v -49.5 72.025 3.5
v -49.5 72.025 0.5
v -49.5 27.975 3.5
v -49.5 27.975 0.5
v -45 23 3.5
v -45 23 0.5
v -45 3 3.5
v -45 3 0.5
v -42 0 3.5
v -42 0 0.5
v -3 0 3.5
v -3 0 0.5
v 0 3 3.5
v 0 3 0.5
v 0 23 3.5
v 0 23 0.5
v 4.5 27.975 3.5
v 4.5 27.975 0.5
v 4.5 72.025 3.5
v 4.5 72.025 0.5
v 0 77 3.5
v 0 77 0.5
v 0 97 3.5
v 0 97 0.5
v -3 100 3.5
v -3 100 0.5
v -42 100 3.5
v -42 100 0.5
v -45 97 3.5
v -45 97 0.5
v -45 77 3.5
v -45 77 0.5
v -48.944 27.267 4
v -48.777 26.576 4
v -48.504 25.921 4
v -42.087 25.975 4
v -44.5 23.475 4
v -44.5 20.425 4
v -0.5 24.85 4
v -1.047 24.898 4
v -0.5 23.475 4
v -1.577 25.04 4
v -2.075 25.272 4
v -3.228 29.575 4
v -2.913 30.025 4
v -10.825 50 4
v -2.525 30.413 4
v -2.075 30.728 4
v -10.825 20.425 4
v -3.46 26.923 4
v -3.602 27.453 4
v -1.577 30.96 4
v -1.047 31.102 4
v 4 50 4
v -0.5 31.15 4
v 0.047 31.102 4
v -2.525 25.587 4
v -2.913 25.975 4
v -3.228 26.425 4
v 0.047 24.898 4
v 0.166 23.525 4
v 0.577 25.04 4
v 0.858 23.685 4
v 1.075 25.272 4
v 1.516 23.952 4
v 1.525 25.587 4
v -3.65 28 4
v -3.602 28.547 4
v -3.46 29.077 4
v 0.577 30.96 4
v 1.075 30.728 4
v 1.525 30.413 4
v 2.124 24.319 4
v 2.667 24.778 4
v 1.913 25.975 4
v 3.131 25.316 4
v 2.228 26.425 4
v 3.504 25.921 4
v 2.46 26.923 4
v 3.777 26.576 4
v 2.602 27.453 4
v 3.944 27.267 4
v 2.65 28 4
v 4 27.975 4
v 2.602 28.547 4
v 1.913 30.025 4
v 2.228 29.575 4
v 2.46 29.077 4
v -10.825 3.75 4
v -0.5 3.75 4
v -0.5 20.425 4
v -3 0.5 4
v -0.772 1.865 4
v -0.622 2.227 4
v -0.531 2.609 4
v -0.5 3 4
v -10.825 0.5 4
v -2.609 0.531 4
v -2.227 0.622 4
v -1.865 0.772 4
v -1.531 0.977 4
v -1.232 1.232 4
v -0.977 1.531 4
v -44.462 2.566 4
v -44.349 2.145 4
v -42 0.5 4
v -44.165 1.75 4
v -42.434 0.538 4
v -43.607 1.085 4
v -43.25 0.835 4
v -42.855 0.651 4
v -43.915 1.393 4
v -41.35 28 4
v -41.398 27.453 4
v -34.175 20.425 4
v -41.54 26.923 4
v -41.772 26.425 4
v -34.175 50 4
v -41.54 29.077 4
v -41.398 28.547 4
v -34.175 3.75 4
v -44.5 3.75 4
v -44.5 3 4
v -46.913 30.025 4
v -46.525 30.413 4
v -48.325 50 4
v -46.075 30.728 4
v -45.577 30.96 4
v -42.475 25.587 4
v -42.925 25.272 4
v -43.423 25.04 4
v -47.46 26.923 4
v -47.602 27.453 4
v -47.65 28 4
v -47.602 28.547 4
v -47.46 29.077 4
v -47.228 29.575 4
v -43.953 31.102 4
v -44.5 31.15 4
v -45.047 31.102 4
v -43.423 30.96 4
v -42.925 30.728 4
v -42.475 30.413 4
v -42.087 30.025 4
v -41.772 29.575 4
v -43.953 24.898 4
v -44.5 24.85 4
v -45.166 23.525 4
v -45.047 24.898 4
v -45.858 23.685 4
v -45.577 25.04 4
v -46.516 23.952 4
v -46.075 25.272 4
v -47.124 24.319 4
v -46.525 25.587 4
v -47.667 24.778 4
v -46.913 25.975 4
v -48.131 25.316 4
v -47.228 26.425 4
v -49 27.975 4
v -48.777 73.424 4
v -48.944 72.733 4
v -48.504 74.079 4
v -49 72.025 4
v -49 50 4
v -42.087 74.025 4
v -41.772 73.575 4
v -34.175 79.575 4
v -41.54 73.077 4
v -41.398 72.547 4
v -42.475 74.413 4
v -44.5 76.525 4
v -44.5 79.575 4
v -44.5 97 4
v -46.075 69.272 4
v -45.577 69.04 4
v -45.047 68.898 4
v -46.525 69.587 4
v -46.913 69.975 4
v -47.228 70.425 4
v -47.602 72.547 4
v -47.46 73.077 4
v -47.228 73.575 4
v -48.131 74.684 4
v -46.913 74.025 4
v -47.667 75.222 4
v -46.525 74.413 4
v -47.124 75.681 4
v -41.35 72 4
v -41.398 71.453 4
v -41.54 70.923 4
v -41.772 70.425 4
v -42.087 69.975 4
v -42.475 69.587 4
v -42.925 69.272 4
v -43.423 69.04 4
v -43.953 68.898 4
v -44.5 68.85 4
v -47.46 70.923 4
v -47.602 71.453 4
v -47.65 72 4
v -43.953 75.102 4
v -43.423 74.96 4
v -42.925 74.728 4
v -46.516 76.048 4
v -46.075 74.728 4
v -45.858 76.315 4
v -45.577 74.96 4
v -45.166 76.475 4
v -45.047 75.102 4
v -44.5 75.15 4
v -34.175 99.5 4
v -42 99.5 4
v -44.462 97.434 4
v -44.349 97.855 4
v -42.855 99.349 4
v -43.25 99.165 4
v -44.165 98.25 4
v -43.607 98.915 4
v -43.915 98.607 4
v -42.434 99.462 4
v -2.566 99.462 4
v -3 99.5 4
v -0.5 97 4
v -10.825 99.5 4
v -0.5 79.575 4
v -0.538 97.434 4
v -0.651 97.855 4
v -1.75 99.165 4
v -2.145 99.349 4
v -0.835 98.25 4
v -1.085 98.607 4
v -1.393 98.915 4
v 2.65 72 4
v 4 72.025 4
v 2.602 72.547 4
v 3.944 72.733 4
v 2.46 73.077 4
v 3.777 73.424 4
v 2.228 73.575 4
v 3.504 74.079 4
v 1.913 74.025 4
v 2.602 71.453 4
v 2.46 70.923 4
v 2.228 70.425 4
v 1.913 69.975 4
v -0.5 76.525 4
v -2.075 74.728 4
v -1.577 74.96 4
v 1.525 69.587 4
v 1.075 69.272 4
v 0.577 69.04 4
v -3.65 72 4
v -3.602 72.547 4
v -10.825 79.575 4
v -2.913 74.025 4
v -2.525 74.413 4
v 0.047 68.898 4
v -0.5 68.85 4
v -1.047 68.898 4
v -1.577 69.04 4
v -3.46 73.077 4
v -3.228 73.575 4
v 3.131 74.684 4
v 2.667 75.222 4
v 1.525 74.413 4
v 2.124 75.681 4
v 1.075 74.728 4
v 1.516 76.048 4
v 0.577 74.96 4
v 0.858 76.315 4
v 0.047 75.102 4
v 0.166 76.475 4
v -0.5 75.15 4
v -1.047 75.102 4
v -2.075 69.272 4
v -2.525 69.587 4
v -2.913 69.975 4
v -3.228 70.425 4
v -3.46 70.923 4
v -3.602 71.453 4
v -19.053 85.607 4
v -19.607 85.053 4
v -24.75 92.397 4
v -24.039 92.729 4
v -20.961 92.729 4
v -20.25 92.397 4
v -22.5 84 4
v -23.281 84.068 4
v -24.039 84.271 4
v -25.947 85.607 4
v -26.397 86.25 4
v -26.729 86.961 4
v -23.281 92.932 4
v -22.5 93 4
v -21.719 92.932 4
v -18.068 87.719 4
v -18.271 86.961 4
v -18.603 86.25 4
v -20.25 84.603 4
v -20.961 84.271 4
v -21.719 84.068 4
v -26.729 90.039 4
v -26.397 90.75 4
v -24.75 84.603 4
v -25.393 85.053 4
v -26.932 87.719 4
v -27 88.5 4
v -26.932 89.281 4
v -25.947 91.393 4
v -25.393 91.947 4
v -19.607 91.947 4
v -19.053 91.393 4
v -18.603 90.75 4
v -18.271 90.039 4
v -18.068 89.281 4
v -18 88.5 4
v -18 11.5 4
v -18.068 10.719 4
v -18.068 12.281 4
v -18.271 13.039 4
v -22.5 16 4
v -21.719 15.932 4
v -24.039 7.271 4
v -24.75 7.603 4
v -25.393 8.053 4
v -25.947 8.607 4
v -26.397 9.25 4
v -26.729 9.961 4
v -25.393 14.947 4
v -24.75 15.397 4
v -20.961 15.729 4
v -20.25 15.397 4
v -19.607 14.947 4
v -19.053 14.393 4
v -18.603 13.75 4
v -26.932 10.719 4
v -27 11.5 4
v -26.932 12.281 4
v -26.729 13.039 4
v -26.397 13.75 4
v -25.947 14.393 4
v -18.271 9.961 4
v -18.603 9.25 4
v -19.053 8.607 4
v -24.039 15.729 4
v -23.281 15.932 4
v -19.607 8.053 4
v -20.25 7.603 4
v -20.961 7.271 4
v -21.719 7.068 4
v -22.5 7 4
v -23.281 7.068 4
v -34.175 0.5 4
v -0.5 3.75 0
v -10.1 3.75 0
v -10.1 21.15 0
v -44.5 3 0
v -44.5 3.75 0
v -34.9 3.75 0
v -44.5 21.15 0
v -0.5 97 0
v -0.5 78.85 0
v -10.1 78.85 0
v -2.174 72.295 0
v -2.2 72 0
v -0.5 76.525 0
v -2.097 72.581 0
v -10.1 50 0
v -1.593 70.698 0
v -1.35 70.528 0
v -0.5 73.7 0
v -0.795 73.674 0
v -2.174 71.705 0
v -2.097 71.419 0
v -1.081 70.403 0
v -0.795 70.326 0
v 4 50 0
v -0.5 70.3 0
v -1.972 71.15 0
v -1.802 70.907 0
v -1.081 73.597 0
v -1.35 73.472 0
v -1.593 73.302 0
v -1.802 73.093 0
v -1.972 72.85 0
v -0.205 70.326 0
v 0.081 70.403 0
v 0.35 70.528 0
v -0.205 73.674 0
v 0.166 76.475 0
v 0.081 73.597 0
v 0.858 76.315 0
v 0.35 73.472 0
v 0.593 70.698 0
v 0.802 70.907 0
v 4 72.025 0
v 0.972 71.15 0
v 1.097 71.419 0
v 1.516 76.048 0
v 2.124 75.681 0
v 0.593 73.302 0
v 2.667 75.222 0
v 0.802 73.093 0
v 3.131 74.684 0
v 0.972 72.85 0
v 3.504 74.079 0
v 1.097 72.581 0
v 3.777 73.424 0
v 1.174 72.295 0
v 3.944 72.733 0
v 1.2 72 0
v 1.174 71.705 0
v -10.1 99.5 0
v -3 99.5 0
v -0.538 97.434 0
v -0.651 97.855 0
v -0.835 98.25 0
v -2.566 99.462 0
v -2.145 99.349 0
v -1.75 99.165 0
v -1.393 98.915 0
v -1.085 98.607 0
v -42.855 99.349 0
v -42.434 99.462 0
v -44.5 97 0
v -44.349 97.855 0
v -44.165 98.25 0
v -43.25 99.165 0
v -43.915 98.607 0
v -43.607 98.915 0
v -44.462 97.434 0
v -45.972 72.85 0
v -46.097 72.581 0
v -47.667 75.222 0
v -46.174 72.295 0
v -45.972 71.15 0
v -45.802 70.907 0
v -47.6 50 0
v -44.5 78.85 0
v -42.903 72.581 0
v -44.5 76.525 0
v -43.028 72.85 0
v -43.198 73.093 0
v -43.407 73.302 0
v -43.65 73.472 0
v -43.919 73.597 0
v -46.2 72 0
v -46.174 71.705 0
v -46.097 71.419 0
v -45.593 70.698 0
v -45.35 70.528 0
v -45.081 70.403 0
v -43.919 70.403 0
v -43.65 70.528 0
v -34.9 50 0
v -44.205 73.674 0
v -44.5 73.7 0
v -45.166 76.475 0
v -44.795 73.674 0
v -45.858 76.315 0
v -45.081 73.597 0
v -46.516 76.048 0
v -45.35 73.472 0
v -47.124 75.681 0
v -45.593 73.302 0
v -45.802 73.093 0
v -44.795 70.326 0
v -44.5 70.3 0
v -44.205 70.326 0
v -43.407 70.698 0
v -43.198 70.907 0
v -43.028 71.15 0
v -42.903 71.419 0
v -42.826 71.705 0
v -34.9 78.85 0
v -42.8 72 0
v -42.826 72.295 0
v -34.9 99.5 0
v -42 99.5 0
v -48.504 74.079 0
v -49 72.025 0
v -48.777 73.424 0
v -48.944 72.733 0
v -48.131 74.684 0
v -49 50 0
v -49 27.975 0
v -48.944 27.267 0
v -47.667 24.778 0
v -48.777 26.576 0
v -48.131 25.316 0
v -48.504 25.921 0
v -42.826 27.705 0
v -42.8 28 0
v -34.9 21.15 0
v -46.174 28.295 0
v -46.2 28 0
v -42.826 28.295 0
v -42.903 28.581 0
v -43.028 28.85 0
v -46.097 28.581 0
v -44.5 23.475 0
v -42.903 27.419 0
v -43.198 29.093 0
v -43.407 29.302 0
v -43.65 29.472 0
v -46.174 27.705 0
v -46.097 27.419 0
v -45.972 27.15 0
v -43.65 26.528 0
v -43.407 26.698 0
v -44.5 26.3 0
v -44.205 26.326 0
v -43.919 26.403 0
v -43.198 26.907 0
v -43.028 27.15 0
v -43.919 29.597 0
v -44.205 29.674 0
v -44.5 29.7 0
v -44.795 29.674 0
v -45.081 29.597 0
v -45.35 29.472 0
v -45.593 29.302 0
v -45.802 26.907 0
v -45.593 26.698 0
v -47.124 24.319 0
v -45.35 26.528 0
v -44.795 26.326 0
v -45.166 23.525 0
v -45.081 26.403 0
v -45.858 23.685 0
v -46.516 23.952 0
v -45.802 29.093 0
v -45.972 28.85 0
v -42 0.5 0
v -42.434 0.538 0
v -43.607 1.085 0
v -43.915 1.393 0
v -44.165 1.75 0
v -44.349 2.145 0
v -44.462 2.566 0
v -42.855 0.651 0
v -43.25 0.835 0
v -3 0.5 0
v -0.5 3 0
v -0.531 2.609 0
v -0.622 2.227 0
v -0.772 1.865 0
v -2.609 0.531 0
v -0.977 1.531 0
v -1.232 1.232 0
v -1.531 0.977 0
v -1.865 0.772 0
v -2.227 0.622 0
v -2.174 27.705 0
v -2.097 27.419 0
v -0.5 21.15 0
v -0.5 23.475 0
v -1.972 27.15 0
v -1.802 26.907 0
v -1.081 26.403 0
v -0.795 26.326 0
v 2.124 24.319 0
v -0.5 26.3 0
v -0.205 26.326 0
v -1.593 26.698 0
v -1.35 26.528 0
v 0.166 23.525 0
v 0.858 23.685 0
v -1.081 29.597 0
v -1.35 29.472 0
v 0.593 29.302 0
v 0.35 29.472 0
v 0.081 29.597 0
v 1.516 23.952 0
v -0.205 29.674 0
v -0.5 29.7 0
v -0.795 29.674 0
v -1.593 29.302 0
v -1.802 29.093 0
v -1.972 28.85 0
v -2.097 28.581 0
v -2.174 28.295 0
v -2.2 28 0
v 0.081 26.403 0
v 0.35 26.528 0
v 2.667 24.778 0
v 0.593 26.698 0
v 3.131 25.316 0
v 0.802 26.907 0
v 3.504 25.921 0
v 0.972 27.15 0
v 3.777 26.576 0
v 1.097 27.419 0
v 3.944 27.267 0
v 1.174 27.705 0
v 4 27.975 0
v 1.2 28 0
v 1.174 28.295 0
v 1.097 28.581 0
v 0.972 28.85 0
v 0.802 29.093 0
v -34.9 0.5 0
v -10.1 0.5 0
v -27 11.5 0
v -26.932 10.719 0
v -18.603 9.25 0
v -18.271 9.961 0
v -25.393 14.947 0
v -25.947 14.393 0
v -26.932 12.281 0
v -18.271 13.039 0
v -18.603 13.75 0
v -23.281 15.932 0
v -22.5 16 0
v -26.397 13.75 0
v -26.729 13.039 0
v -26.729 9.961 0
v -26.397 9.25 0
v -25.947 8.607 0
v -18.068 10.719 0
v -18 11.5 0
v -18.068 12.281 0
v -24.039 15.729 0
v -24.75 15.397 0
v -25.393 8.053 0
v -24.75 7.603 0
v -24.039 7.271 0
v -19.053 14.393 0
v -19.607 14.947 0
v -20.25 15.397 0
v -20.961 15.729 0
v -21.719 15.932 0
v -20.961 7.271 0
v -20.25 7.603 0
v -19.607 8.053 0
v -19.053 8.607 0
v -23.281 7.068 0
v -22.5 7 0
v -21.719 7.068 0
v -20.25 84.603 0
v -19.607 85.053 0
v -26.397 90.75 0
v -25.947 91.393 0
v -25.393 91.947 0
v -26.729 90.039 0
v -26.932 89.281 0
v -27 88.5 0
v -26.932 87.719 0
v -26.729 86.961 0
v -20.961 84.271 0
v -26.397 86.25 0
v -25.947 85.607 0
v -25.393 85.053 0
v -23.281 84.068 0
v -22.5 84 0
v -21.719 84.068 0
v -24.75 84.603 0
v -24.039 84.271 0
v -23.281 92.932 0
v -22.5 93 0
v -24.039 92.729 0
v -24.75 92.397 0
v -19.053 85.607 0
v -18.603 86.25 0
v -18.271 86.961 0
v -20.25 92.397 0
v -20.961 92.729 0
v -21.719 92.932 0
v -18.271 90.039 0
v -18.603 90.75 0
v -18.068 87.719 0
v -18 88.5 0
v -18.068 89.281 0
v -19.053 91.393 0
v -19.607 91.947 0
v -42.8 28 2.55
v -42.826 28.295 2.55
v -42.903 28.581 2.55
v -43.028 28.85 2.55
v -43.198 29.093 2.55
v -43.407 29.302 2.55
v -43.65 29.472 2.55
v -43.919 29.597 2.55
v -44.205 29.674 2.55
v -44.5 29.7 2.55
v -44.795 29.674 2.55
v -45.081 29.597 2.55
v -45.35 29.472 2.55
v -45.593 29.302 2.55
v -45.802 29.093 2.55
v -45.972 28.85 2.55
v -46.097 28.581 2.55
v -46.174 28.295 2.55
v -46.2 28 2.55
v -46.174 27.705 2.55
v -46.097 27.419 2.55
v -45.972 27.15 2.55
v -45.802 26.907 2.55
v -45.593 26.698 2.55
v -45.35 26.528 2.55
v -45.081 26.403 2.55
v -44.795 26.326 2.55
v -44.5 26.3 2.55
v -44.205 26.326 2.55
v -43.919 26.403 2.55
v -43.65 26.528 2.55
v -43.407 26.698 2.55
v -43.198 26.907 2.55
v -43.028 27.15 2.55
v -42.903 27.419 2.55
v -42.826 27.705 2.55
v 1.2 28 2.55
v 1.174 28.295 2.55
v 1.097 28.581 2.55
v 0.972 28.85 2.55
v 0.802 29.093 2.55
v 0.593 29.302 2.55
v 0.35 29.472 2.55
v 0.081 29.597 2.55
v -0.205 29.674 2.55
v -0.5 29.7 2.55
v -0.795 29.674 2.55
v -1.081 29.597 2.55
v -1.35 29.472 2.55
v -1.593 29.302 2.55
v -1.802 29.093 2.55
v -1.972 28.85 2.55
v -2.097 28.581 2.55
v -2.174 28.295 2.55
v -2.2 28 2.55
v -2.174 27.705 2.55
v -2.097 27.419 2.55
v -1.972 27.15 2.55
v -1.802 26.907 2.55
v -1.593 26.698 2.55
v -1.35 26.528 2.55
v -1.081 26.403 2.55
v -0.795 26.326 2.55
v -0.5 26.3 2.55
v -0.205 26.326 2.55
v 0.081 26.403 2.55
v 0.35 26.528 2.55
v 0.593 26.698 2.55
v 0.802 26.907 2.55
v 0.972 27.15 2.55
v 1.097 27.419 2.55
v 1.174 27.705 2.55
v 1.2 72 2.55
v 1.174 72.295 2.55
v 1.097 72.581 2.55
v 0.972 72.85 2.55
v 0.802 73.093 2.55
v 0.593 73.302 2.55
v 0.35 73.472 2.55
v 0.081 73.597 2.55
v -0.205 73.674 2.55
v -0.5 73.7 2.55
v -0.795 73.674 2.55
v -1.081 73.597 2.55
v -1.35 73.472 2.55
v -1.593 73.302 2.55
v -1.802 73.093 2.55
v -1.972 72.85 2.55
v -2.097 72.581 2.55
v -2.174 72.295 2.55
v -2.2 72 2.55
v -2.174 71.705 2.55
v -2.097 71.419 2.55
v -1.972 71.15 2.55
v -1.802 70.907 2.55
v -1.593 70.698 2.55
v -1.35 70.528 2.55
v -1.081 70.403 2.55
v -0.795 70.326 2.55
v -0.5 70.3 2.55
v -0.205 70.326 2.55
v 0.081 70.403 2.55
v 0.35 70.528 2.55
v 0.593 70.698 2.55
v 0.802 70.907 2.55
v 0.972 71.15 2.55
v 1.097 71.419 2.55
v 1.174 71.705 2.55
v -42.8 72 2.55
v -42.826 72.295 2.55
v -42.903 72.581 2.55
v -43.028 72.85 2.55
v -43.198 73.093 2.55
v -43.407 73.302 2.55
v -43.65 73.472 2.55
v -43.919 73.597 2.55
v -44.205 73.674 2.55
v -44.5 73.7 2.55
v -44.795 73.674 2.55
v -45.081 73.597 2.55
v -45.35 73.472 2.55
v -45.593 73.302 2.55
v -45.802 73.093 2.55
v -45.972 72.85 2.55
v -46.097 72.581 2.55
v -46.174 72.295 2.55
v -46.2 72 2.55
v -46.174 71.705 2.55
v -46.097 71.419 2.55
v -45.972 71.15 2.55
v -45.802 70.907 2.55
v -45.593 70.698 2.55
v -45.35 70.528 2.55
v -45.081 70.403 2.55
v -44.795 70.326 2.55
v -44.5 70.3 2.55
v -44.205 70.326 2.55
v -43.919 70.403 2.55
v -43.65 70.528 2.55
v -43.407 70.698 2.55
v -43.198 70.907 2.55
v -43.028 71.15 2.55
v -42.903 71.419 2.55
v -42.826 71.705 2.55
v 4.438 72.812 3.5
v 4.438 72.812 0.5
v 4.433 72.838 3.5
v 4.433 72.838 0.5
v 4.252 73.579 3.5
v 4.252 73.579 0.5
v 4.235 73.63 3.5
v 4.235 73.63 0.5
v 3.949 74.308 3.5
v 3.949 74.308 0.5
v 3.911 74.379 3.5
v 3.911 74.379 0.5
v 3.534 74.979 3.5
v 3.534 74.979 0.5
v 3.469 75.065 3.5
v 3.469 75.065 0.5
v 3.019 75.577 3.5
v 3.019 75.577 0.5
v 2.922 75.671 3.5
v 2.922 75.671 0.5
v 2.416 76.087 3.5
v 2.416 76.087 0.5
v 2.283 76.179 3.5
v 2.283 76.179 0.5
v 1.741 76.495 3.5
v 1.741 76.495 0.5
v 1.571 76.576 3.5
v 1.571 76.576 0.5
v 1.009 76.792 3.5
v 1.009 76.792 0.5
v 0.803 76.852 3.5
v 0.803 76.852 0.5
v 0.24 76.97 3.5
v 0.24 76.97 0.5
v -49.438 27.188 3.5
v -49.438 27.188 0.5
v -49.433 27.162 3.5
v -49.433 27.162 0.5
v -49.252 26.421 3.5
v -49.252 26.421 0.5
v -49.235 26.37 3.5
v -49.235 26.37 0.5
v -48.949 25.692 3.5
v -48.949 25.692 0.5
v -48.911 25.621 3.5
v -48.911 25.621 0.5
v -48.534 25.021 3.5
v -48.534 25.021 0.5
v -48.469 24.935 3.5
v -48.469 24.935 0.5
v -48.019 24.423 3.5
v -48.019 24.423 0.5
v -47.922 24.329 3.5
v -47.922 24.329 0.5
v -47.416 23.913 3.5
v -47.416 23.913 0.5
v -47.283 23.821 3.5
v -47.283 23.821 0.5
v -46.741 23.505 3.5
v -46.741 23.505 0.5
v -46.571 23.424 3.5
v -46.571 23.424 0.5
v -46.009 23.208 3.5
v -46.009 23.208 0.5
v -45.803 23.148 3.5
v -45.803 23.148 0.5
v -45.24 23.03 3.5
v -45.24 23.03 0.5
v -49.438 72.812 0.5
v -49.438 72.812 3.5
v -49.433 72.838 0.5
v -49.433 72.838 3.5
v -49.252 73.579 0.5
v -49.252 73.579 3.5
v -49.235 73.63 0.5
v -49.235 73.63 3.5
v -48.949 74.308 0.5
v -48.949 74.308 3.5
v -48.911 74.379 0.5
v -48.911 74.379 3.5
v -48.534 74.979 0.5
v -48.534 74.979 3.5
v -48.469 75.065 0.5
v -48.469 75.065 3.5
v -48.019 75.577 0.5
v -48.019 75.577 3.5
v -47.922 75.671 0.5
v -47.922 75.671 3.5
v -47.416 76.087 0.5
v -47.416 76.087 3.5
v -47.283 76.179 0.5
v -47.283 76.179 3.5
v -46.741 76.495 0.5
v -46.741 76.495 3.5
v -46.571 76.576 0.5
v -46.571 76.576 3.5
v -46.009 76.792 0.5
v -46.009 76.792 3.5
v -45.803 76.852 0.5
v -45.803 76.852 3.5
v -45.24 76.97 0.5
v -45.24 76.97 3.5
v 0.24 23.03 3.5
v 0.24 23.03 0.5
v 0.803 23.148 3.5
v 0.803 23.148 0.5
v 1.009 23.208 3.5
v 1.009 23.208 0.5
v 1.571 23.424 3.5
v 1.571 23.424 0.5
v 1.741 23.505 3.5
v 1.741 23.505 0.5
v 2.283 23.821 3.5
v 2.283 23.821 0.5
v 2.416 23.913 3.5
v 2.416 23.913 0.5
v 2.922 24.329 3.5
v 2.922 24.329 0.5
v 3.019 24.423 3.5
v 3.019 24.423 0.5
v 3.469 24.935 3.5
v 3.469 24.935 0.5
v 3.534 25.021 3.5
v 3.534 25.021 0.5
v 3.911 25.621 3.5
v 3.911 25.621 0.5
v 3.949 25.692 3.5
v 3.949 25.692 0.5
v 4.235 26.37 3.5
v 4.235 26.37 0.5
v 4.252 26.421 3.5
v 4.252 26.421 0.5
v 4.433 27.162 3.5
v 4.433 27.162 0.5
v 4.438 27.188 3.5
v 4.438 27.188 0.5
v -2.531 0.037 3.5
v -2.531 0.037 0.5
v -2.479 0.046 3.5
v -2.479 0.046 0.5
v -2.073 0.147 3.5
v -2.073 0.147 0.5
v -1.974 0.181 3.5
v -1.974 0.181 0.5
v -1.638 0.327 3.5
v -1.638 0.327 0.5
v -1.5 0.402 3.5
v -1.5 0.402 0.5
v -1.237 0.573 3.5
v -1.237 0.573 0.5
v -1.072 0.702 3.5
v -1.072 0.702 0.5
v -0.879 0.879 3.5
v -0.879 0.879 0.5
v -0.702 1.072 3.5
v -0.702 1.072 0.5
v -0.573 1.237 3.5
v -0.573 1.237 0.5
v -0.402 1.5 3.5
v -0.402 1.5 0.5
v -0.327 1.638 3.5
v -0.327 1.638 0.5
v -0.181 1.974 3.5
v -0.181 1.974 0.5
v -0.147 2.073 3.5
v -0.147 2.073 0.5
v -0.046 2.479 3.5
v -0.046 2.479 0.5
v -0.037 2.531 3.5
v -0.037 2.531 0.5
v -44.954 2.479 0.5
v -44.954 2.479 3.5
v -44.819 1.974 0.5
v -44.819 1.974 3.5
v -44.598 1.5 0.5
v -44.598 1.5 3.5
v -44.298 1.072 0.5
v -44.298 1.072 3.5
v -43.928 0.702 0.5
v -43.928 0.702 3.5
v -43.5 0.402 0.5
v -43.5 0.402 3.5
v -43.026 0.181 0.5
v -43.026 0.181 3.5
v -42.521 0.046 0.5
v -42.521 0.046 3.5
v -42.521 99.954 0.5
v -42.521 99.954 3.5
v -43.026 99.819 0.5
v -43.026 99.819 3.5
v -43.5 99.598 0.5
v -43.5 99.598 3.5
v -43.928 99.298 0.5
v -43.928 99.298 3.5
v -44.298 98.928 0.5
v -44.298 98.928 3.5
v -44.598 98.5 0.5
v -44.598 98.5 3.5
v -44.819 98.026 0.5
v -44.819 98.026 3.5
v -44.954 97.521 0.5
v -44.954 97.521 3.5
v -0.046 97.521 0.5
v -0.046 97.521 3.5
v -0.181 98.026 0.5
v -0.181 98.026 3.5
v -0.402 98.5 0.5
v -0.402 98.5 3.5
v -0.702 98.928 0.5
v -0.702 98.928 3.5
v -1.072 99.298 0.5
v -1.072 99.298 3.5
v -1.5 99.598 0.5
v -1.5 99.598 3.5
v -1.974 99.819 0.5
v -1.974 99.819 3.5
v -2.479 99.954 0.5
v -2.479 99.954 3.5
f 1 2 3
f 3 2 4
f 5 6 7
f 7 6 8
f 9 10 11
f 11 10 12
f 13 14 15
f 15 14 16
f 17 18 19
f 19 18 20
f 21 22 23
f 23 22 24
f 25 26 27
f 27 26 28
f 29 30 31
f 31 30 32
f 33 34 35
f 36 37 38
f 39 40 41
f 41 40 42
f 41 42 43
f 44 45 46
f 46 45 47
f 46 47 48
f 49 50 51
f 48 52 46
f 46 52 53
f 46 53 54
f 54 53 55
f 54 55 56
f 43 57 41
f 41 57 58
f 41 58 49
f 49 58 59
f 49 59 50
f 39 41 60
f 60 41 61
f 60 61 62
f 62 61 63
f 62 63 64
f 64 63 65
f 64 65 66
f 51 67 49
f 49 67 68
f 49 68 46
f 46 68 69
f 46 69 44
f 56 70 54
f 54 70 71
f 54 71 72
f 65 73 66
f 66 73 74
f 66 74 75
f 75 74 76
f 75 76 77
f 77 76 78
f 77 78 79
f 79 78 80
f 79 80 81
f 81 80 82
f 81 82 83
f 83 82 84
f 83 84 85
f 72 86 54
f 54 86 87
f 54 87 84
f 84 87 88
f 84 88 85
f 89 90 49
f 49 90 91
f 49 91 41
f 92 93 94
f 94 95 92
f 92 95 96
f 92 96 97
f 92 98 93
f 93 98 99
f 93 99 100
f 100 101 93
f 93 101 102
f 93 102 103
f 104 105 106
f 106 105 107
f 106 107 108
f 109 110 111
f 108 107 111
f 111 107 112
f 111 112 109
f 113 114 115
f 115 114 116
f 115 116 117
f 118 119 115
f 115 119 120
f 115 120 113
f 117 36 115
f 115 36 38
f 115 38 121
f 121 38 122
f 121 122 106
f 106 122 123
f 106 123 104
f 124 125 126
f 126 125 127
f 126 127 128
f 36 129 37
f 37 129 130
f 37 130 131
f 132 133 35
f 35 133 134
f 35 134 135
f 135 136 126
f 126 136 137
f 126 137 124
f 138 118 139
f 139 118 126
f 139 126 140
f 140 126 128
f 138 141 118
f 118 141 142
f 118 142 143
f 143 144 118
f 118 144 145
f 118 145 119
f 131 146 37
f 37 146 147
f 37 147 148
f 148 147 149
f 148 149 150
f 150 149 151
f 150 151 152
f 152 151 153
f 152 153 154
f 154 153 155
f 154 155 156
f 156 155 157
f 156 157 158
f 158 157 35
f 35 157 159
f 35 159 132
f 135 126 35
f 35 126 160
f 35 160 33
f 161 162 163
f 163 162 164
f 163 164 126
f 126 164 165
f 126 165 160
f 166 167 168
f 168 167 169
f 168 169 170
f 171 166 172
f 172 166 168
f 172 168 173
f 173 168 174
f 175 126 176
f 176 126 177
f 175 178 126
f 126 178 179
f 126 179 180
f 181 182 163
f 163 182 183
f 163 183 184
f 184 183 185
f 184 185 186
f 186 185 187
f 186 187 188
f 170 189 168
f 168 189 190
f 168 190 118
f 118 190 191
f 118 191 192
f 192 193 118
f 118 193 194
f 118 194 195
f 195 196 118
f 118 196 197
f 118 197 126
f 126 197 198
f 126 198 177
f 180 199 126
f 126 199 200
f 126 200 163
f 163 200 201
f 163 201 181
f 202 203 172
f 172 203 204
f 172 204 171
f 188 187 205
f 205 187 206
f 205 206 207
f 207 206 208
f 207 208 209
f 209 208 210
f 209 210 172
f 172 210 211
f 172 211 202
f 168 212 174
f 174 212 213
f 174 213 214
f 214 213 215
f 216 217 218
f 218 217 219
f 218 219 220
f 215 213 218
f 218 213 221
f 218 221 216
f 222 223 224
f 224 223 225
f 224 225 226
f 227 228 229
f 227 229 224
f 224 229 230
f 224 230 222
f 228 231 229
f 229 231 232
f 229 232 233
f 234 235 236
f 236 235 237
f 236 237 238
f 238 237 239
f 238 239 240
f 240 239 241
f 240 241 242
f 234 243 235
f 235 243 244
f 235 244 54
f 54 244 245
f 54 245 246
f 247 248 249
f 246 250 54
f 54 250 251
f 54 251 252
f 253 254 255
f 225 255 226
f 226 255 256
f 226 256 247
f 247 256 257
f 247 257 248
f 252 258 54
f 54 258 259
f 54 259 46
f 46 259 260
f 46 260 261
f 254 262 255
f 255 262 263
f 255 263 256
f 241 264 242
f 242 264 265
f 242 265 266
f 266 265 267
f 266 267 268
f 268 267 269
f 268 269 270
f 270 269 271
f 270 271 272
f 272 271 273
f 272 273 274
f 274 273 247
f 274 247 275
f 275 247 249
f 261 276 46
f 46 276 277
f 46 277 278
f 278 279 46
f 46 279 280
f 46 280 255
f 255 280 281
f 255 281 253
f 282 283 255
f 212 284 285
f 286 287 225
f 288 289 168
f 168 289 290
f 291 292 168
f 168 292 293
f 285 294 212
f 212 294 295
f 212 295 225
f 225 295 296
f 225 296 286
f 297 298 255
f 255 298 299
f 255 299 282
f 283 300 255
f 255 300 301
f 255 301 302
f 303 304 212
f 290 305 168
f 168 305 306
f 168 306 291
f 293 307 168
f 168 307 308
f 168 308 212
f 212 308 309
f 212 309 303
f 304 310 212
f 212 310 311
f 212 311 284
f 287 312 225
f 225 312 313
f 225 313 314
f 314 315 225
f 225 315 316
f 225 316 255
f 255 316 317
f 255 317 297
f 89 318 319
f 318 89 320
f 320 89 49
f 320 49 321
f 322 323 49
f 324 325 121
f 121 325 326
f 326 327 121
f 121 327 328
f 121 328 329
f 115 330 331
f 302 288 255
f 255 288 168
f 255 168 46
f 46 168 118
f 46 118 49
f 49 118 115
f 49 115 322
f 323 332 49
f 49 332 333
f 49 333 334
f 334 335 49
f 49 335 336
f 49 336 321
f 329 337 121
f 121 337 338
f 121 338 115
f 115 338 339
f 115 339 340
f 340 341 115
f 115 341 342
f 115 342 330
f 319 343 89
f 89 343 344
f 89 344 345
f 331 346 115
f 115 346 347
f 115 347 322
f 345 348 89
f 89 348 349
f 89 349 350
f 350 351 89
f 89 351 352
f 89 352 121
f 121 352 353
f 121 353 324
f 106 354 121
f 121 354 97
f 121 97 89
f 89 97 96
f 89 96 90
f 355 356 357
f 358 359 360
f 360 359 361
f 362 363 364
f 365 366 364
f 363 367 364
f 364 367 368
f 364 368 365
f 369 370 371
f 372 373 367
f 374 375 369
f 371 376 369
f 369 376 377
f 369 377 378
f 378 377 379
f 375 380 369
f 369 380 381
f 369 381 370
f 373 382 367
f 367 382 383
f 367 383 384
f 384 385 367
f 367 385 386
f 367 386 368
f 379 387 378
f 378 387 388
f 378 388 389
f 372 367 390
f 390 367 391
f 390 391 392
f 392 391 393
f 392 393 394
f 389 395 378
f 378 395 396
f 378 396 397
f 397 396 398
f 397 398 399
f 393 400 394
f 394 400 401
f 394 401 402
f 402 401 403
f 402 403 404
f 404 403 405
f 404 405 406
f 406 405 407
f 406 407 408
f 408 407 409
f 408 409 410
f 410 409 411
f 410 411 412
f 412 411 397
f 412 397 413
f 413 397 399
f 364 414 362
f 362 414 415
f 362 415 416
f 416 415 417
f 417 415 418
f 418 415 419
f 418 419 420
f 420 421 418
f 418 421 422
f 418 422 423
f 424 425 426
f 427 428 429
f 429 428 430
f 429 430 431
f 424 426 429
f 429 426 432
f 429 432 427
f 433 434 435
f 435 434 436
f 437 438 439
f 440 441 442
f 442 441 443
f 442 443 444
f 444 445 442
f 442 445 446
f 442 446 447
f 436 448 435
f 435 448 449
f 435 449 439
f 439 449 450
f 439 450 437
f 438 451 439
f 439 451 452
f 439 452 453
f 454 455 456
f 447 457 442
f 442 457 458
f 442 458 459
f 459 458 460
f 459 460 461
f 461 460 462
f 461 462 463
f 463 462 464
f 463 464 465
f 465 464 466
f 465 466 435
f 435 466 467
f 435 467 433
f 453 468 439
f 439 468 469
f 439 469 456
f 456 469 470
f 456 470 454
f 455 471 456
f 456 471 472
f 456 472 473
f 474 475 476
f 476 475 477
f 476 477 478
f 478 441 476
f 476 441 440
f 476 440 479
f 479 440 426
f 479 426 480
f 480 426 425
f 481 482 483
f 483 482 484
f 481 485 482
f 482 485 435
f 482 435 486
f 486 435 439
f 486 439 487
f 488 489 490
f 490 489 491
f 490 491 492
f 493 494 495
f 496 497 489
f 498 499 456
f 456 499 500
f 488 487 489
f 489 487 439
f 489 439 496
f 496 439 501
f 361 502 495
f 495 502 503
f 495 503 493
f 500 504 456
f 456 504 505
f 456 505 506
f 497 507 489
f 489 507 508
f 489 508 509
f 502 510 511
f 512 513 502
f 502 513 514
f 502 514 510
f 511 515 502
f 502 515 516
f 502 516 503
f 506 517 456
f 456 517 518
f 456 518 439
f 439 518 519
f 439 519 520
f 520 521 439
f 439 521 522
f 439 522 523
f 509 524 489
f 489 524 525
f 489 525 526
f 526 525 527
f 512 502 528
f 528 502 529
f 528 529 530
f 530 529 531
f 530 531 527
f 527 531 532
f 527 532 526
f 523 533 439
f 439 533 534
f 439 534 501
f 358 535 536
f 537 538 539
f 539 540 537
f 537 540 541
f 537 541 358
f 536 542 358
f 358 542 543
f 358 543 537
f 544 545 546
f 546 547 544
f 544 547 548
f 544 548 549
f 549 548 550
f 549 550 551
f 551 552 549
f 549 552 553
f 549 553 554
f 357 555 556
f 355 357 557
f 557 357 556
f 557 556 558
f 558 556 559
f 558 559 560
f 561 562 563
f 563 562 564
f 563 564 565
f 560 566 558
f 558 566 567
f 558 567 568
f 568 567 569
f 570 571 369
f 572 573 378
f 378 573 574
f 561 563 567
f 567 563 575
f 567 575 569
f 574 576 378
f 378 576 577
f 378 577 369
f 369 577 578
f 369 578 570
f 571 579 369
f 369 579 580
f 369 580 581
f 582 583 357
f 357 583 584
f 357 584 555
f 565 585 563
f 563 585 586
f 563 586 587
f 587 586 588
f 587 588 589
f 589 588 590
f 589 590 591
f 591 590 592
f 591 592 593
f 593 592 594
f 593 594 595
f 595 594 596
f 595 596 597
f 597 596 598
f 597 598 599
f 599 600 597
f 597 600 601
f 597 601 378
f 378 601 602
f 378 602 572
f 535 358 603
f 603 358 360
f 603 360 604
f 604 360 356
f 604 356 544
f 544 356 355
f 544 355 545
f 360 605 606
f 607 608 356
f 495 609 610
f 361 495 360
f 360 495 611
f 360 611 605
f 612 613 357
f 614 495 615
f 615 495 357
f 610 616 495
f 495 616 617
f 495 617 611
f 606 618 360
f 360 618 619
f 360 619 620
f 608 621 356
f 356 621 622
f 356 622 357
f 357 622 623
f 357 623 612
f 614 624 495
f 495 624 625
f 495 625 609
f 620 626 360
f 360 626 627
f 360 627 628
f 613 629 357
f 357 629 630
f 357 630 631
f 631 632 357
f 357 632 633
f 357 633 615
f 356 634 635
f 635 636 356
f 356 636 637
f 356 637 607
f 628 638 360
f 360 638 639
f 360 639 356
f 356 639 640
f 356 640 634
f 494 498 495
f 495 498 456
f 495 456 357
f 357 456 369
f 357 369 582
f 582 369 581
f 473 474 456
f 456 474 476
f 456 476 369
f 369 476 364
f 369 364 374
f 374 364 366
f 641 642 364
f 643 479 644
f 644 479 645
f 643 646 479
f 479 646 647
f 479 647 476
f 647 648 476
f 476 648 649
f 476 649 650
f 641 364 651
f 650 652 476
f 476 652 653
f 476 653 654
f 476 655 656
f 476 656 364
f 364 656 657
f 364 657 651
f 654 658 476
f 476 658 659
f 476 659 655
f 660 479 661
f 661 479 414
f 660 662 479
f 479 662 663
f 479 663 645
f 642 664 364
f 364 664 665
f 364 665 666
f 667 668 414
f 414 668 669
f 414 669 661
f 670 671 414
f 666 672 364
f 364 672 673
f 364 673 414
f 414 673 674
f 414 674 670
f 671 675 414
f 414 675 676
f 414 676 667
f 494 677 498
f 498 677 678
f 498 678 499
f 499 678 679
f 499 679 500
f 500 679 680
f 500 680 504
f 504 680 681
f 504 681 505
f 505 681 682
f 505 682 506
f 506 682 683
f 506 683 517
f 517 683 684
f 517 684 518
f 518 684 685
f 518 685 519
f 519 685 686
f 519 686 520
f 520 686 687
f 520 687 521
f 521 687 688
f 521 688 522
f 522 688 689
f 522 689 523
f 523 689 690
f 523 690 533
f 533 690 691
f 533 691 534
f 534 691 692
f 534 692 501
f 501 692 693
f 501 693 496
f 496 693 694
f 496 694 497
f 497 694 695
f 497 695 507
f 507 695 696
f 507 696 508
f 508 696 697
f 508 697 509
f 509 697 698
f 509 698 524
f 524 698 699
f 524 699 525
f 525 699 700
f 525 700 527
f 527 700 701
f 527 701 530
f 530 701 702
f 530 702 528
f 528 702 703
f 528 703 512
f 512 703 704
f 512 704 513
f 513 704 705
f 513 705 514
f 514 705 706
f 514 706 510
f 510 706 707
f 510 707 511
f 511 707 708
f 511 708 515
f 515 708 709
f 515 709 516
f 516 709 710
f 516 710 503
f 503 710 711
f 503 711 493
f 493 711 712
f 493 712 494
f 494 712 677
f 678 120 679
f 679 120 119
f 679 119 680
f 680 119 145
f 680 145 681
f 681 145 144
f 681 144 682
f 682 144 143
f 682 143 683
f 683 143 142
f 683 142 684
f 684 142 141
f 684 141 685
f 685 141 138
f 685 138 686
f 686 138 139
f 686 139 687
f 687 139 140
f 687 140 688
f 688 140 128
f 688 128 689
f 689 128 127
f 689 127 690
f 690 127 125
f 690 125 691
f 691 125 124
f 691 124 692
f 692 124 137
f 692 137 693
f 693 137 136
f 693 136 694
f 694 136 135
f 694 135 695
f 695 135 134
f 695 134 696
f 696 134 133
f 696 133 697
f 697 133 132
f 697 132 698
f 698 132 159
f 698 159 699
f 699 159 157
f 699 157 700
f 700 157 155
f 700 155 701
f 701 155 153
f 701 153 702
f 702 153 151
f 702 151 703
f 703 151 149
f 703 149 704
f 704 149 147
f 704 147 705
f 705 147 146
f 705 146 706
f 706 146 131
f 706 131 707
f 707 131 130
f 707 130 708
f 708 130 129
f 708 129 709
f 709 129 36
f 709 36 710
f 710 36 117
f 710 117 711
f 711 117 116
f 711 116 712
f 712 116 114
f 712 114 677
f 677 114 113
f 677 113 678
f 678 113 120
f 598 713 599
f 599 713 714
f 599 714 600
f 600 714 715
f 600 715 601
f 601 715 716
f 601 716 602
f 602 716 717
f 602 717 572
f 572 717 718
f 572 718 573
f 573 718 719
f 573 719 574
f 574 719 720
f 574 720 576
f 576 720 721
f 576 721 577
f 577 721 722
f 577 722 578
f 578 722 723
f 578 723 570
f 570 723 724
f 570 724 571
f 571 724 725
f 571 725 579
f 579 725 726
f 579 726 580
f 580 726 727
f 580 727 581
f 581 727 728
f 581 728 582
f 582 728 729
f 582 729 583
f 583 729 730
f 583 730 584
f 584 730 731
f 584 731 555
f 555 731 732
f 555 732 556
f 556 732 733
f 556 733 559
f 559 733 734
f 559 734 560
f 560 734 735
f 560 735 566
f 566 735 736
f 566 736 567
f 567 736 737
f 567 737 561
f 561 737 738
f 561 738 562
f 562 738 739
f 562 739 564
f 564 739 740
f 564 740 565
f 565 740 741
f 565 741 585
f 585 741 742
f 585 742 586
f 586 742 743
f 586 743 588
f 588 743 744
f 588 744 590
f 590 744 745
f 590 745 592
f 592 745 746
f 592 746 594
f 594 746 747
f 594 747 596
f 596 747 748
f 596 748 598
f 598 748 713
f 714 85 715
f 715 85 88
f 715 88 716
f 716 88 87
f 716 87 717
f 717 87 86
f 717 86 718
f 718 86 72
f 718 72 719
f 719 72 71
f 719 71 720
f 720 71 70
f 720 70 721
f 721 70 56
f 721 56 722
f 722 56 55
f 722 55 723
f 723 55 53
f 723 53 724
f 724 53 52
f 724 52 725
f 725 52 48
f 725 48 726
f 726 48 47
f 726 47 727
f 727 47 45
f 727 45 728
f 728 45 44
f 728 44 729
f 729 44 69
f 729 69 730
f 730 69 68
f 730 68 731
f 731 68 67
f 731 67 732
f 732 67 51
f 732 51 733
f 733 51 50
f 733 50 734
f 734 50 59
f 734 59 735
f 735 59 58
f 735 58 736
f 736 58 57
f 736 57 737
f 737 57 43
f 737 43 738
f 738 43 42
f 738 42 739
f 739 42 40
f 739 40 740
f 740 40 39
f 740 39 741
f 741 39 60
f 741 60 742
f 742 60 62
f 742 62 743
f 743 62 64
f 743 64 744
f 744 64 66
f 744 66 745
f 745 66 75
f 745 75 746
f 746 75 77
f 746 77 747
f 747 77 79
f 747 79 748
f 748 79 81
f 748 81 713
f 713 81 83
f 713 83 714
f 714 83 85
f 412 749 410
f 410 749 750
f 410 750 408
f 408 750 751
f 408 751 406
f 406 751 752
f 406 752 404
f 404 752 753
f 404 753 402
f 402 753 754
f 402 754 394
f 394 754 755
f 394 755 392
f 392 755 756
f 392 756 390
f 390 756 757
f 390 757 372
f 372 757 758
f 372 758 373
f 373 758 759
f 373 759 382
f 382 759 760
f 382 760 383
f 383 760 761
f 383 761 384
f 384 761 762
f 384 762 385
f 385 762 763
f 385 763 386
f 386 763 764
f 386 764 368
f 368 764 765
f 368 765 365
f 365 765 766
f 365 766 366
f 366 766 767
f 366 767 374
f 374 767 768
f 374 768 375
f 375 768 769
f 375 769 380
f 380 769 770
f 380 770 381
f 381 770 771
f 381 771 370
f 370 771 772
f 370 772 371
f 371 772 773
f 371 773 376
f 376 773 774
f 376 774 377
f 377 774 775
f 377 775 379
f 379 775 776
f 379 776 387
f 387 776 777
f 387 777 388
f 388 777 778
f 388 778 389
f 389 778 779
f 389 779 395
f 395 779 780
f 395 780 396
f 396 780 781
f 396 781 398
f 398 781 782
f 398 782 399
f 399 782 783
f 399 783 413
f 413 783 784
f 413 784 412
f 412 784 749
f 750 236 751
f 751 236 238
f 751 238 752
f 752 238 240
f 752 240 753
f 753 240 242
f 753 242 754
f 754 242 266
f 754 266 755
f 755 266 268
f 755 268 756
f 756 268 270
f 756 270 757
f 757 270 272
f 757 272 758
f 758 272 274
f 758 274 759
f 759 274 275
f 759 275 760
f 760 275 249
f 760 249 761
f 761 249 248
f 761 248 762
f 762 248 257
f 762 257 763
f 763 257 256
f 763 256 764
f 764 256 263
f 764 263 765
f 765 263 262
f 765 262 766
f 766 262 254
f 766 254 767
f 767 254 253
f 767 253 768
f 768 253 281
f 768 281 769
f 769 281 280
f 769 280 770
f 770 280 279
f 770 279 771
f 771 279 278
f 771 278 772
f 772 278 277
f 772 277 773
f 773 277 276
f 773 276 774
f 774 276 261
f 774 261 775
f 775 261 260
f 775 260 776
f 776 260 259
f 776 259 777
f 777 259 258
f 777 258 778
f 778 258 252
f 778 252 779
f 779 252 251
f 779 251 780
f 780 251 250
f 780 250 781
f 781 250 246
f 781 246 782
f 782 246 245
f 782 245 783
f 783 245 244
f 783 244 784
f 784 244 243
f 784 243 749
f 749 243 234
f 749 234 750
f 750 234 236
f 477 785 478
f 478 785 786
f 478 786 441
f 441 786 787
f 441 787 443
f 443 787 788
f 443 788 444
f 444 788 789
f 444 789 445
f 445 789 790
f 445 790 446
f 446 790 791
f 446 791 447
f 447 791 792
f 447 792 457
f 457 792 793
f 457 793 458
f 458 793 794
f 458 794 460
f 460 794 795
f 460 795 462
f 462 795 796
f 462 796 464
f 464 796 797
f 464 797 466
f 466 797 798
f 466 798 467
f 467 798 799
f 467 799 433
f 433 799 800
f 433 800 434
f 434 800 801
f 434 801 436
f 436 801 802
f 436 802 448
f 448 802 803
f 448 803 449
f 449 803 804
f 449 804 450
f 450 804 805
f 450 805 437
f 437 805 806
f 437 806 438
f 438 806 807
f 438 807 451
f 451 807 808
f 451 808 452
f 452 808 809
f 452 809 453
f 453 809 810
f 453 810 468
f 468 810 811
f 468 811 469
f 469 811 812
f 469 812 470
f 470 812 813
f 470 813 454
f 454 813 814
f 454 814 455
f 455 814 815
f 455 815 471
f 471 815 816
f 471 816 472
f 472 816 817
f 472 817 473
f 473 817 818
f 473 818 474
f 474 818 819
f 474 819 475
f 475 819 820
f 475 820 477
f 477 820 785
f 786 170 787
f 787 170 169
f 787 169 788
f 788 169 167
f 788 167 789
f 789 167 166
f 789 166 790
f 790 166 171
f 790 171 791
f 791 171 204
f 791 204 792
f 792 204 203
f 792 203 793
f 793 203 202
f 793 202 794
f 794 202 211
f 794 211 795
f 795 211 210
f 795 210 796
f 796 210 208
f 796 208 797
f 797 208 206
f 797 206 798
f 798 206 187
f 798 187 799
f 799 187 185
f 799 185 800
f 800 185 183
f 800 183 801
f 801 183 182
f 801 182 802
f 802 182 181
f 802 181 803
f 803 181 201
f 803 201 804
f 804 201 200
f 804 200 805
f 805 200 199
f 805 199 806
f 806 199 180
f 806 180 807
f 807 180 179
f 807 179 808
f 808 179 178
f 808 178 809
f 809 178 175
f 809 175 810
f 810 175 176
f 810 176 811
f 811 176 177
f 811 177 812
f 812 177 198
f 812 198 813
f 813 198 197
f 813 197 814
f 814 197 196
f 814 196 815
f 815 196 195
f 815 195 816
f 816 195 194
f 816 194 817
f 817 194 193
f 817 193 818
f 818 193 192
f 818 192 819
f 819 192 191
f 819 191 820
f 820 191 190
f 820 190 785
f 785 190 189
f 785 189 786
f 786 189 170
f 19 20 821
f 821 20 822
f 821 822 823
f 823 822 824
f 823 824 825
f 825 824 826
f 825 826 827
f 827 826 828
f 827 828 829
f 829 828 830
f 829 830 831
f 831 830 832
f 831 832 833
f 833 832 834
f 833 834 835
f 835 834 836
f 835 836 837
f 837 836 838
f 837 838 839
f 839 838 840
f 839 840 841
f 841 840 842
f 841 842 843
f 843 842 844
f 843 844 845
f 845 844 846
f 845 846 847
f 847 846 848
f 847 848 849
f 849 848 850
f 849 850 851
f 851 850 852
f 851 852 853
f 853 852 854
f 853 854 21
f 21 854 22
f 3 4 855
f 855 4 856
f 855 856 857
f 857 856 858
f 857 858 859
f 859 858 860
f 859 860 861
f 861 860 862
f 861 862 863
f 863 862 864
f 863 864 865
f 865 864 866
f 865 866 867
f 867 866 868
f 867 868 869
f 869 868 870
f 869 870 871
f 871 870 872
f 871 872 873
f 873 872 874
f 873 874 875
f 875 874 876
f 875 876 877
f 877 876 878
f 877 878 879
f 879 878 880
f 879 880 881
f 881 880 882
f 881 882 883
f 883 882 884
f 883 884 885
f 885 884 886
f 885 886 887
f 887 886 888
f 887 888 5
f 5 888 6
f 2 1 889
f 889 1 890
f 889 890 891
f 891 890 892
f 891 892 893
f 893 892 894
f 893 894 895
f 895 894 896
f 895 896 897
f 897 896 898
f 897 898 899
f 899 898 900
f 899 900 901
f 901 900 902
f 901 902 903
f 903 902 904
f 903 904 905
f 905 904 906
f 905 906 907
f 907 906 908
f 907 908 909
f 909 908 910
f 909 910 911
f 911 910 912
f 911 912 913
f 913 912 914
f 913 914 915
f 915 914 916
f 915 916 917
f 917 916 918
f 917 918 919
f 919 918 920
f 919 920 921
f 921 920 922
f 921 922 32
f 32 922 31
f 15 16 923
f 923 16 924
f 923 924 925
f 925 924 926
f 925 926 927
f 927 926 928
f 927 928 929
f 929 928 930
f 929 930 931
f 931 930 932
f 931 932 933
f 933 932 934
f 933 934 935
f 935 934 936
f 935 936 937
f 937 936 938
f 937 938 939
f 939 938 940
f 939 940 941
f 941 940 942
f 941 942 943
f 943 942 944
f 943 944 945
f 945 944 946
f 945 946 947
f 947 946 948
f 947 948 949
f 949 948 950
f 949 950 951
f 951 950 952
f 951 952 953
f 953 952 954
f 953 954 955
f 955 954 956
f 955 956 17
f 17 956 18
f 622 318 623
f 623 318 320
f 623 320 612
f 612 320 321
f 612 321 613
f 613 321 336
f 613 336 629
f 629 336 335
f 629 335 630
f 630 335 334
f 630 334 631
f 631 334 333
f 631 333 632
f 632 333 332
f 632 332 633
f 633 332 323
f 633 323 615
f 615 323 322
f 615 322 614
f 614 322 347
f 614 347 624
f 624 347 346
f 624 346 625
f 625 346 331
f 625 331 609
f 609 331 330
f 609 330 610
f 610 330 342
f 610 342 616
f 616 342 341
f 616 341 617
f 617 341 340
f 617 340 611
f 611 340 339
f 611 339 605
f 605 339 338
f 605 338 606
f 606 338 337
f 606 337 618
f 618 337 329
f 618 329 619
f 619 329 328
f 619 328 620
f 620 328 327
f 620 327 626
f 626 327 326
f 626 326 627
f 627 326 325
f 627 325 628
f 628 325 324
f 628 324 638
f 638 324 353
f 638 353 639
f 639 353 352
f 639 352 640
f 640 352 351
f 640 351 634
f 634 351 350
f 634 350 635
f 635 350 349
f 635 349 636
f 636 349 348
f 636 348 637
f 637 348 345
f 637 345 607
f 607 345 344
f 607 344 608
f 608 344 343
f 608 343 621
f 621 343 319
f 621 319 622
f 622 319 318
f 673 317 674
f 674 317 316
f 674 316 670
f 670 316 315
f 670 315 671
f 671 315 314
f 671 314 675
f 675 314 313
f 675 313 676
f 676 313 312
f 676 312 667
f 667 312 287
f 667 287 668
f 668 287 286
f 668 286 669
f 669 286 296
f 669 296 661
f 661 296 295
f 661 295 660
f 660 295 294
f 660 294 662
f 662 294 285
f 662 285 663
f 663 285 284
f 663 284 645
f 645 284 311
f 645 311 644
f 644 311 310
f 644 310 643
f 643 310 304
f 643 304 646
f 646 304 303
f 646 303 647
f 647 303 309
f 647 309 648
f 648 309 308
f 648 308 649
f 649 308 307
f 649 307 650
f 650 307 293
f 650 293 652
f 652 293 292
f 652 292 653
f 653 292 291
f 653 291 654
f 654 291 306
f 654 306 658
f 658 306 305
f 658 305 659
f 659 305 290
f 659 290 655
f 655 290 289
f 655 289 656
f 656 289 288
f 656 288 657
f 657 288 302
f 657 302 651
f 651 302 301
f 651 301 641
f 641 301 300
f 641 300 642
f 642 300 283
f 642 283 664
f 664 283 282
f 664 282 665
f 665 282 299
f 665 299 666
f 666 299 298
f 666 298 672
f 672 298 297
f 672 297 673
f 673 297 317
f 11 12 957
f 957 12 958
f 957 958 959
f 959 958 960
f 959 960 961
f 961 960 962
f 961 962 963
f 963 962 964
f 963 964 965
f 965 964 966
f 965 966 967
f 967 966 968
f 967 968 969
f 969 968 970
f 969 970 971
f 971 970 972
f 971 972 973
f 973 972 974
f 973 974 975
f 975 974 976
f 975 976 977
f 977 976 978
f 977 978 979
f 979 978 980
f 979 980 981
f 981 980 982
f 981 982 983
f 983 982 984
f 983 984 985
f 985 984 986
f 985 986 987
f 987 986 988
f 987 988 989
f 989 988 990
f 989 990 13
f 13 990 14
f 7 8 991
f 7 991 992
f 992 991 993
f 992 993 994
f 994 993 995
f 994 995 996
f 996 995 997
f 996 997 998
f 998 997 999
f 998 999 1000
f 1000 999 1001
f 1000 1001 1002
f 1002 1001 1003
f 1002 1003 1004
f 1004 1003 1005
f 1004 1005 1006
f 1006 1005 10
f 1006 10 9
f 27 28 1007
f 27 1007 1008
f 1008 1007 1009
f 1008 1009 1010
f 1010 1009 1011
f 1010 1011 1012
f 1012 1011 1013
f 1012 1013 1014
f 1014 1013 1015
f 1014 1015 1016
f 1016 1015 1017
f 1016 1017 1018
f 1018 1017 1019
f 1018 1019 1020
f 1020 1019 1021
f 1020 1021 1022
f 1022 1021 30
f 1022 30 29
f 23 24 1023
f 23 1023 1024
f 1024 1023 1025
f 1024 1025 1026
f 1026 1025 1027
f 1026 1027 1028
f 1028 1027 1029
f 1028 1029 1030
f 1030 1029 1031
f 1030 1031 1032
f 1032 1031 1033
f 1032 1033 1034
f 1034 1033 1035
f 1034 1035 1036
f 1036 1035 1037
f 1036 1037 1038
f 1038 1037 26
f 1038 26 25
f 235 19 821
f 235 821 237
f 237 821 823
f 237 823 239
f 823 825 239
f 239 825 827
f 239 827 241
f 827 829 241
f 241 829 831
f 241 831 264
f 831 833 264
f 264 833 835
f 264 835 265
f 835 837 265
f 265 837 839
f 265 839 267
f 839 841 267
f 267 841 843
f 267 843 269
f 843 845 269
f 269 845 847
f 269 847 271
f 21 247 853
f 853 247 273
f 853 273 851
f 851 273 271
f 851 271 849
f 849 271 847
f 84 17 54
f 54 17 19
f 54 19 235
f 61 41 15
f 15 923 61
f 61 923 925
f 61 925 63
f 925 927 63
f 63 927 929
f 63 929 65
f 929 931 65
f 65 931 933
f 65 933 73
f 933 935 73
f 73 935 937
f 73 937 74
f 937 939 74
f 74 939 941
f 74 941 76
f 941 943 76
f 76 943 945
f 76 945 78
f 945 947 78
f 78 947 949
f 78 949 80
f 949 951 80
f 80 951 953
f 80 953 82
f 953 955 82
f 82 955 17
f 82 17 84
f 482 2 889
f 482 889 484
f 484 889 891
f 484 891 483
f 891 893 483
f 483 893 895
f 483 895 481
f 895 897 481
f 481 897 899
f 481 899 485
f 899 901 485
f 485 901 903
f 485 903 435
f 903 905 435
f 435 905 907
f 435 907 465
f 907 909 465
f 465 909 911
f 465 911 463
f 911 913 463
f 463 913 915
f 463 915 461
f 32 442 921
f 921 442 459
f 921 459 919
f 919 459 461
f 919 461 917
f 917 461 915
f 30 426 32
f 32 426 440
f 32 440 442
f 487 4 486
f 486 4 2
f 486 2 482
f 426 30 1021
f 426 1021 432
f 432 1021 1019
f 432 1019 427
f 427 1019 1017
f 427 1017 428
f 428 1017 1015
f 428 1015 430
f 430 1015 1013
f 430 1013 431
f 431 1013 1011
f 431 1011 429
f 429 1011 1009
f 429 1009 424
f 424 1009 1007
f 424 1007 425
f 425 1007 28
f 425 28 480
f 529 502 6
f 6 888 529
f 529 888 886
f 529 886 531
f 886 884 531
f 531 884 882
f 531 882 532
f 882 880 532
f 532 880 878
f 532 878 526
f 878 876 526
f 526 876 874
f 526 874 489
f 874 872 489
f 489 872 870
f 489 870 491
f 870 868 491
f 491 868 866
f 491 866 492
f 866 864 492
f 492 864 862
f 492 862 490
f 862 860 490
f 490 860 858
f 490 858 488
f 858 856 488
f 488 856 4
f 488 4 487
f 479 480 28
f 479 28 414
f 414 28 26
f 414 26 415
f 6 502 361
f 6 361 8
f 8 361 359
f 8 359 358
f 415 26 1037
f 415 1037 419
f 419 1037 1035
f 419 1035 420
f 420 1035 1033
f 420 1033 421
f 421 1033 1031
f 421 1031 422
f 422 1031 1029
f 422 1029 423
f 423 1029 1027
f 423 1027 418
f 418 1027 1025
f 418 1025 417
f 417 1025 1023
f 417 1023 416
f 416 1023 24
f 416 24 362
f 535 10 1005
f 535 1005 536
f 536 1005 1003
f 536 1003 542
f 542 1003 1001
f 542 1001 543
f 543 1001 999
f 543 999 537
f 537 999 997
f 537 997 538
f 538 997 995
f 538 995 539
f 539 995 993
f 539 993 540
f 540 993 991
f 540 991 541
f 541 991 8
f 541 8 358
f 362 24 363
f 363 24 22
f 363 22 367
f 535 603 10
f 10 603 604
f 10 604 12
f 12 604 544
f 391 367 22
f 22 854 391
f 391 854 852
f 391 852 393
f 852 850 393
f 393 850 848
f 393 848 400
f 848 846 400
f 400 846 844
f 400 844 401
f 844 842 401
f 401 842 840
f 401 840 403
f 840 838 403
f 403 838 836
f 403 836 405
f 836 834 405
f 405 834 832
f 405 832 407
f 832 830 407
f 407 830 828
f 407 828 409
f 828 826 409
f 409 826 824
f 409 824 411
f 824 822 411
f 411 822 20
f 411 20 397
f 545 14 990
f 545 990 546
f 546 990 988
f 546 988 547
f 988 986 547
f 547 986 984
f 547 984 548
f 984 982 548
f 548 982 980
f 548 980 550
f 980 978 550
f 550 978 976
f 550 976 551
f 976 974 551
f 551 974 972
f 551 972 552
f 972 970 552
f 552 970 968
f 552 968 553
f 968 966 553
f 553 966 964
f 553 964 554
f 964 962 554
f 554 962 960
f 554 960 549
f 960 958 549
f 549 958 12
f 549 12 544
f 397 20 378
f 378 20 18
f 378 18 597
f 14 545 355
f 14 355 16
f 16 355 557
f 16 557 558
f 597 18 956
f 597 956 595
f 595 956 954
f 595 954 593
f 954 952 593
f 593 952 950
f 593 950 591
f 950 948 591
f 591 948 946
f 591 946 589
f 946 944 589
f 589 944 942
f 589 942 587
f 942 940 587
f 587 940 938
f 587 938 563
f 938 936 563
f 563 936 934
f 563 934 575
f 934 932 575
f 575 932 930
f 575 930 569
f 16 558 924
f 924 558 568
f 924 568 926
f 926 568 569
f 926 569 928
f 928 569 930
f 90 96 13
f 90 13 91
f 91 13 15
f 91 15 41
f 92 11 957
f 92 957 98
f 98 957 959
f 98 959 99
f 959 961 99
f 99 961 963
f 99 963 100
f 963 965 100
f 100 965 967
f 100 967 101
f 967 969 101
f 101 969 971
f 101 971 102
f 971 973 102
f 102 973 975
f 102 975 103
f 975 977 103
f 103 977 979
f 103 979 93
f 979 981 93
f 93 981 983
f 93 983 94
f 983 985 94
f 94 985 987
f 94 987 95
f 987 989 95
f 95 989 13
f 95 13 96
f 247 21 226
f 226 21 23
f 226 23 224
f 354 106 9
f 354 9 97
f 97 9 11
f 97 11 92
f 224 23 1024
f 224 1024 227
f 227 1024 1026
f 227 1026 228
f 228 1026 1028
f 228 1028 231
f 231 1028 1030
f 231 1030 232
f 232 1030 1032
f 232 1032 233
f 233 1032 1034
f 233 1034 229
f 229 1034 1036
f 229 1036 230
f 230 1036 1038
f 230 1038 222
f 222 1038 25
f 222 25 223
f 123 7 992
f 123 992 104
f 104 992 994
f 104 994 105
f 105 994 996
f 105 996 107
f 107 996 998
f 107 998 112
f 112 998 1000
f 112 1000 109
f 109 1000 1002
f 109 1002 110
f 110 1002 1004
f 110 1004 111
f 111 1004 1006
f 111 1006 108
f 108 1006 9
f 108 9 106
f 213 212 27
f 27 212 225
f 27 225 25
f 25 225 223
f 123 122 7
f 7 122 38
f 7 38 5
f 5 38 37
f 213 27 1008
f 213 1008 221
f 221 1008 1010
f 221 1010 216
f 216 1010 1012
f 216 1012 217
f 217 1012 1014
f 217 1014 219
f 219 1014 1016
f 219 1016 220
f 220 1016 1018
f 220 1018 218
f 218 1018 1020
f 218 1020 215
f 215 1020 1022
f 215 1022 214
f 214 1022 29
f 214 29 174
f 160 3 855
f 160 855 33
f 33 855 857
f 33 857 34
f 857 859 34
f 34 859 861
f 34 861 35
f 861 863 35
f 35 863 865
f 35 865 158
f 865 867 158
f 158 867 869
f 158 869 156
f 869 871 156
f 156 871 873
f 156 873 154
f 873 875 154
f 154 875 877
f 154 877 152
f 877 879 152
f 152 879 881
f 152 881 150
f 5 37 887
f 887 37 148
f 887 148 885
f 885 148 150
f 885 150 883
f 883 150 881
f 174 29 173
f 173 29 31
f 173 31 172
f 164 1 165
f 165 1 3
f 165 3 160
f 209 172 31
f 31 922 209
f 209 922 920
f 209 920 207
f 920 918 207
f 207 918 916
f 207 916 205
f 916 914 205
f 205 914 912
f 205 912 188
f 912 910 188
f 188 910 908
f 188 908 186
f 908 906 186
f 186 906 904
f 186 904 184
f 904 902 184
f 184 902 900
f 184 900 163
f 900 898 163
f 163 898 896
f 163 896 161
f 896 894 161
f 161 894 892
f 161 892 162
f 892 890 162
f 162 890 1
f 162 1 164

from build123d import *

# Parameters (mm, degrees)
BOSS_EXTRU_1_DEPTH                             = 4
FRAISAGE_POUR_VIS_T_TE_FRAIS_E_M31_D           = 3.4
FRAISAGE_POUR_VIS_T_TE_FRAIS_E_M31_CSINK_D     = 6.3
FRAISAGE_POUR_VIS_T_TE_FRAIS_E_M31_CSINK_ANGLE = 90
CONG_1_R                                       = 5
D_GAGEMENT_M81_D                               = 9
CONG_2_R                                       = 3
CHANFREIN1_SIZE                                = 0.5
CHANFREIN2_SIZE                                = 0.5


with BuildPart() as part:
    # Esquisse1 → Boss.-Extru.1 (new body)
    with BuildSketch(Plane.XY):
        Polygon((0, 77), (4.5, 77), (4.5, 23), (0, 23), (0, 0), (-45, 0), (-45, 23), (-49.5, 23), (-49.5, 77), (-45, 77), (-45, 100), (0, 100), align=None)
    extrude(amount=BOSS_EXTRU_1_DEPTH)

    # Fraisage pour vis à tête fraisée M31 (through all)
    with Locations(Plane.XY.offset(4)):
        with Locations((-44.5, 72), (-0.5, 72), (-0.5, 28), (-44.5, 28)):
            CounterSinkHole(FRAISAGE_POUR_VIS_T_TE_FRAIS_E_M31_D / 2, FRAISAGE_POUR_VIS_T_TE_FRAIS_E_M31_CSINK_D / 2, counter_sink_angle=FRAISAGE_POUR_VIS_T_TE_FRAIS_E_M31_CSINK_ANGLE)

    # Congé1
    # the kernel refuses this fillet: 5 mm, written as the material it takes off along each edge
    with BuildSketch(Plane(origin=(-49.5, 23, -12.437342964), x_dir=(0, 1, 0), z_dir=(0, 0, 1))) as cong_1_piece_1:
        with BuildLine():
            CenterArc((4.974937186, -5), CONG_1_R, 90, 84.260829523)
            Line((0, -4.5), (-0.099498744, -4.49))
            ThreePointArc((-0.099498744, -4.49), (-0.1, -2.25), (-0.1, 0))
            Line((-0.1, 0), (0, 0.1))
            Line((0, 0.1), (4.974937186, 0.1))
            Line((4.974937186, 0.1), (4.974937186, 0))
        make_face()
    extrude(amount=28.874685928, mode=Mode.SUBTRACT)
    with BuildSketch(Plane(origin=(-49.5, 77, -12.437342964), x_dir=(1, 0, 0), z_dir=(0, 0, 1)), Plane(origin=(4.5, 23, -12.437342964), x_dir=(-1, 0, 0), z_dir=(0, 0, 1))) as cong_1_piece_2:
        with BuildLine():
            CenterArc((5, -4.974937186), CONG_1_R, 95.739170477, 84.260829523)
            Line((0, -4.974937186), (-0.1, -4.974937186))
            Line((-0.1, -4.974937186), (-0.1, 0))
            Line((-0.1, 0), (0, 0.1))
            ThreePointArc((0, 0.1), (2.25, 0.1), (4.49, 0.099498744))
            Line((4.49, 0.099498744), (4.5, 0))
        make_face()
    extrude(amount=28.874685928, mode=Mode.SUBTRACT)
    with BuildSketch(Plane(origin=(4.5, 77, -12.437342964), x_dir=(-1, 0, 0), z_dir=(0, 0, 1))) as cong_1_piece_3:
        with BuildLine():
            CenterArc((5, 4.974937186), CONG_1_R, 180, 84.260829523)
            Line((0, 4.974937186), (-0.1, 4.974937186))
            Line((-0.1, 4.974937186), (-0.1, 0))
            Line((-0.1, 0), (0, -0.1))
            ThreePointArc((0, -0.1), (2.25, -0.1), (4.49, -0.099498744))
            Line((4.49, -0.099498744), (4.5, 0))
        make_face()
    extrude(amount=28.874685928, mode=Mode.SUBTRACT)

    # Dégagement M81 (through all)
    with Locations(Plane.XY.offset(4)):
        with Locations((-22.5, 88.5), (-22.5, 11.5)):
            Hole(D_GAGEMENT_M81_D / 2)

    # Congé2
    cong_2_edges = [part.edges().sort_by_distance(p)[0] for p in [
        (-45, 100, 2),
        (0, 100, 2),
        (0, 0, 2),
        (-45, 0, 2),
    ]]
    fillet(cong_2_edges, radius=CONG_2_R)

    # Chanfrein1
    chanfrein1_edges = [part.edges().sort_by_distance(p)[0] for p in [
        (0, 87, 0),
        (-45, 13, 0),
        (-49.5, 50, 0),
        (4.5, 50, 0),
        (3.208099244, 24.620835219, 0),
        (-48.208099244, 75.379164781, 0),
        (-48.208099244, 24.620835219, 0),
        (3.208099244, 75.379164781, 0),
        (4.5, 50, 4),
        (3.208099244, 24.620835219, 4),
        (3.208099244, 75.379164781, 4),
        (0, 13, 0),
        (-22.5, 0, 0),
        (-45, 87, 0),
        (-22.5, 100, 0),
        (-0.878679656, 99.121320344, 0),
        (-44.121320344, 99.121320344, 0),
        (-44.121320344, 0.878679656, 0),
        (-0.878679656, 0.878679656, 0),
    ]]
    chamfer(chanfrein1_edges, length=CHANFREIN1_SIZE)

    # Chanfrein2
    chanfrein2_edges = [part.edges().sort_by_distance(p)[0] for p in [
        (0, 86.748599385, 4),
        (-0.878679656, 99.121320344, 4),
        (-22.5, 100, 4),
        (-44.121320344, 99.121320344, 4),
        (-45, 87, 4),
        (-45, 13, 4),
        (-44.121320344, 0.878679656, 4),
        (-22.5, 0, 4),
        (-0.878679656, 0.878679656, 4),
        (0, 13.251400615, 4),
        (-48.208099244, 75.379164781, 4),
        (-48.208099244, 24.620835219, 4),
        (-49.5, 50, 4),
    ]]
    chamfer(chanfrein2_edges, length=CHANFREIN2_SIZE)


solid = part.part
